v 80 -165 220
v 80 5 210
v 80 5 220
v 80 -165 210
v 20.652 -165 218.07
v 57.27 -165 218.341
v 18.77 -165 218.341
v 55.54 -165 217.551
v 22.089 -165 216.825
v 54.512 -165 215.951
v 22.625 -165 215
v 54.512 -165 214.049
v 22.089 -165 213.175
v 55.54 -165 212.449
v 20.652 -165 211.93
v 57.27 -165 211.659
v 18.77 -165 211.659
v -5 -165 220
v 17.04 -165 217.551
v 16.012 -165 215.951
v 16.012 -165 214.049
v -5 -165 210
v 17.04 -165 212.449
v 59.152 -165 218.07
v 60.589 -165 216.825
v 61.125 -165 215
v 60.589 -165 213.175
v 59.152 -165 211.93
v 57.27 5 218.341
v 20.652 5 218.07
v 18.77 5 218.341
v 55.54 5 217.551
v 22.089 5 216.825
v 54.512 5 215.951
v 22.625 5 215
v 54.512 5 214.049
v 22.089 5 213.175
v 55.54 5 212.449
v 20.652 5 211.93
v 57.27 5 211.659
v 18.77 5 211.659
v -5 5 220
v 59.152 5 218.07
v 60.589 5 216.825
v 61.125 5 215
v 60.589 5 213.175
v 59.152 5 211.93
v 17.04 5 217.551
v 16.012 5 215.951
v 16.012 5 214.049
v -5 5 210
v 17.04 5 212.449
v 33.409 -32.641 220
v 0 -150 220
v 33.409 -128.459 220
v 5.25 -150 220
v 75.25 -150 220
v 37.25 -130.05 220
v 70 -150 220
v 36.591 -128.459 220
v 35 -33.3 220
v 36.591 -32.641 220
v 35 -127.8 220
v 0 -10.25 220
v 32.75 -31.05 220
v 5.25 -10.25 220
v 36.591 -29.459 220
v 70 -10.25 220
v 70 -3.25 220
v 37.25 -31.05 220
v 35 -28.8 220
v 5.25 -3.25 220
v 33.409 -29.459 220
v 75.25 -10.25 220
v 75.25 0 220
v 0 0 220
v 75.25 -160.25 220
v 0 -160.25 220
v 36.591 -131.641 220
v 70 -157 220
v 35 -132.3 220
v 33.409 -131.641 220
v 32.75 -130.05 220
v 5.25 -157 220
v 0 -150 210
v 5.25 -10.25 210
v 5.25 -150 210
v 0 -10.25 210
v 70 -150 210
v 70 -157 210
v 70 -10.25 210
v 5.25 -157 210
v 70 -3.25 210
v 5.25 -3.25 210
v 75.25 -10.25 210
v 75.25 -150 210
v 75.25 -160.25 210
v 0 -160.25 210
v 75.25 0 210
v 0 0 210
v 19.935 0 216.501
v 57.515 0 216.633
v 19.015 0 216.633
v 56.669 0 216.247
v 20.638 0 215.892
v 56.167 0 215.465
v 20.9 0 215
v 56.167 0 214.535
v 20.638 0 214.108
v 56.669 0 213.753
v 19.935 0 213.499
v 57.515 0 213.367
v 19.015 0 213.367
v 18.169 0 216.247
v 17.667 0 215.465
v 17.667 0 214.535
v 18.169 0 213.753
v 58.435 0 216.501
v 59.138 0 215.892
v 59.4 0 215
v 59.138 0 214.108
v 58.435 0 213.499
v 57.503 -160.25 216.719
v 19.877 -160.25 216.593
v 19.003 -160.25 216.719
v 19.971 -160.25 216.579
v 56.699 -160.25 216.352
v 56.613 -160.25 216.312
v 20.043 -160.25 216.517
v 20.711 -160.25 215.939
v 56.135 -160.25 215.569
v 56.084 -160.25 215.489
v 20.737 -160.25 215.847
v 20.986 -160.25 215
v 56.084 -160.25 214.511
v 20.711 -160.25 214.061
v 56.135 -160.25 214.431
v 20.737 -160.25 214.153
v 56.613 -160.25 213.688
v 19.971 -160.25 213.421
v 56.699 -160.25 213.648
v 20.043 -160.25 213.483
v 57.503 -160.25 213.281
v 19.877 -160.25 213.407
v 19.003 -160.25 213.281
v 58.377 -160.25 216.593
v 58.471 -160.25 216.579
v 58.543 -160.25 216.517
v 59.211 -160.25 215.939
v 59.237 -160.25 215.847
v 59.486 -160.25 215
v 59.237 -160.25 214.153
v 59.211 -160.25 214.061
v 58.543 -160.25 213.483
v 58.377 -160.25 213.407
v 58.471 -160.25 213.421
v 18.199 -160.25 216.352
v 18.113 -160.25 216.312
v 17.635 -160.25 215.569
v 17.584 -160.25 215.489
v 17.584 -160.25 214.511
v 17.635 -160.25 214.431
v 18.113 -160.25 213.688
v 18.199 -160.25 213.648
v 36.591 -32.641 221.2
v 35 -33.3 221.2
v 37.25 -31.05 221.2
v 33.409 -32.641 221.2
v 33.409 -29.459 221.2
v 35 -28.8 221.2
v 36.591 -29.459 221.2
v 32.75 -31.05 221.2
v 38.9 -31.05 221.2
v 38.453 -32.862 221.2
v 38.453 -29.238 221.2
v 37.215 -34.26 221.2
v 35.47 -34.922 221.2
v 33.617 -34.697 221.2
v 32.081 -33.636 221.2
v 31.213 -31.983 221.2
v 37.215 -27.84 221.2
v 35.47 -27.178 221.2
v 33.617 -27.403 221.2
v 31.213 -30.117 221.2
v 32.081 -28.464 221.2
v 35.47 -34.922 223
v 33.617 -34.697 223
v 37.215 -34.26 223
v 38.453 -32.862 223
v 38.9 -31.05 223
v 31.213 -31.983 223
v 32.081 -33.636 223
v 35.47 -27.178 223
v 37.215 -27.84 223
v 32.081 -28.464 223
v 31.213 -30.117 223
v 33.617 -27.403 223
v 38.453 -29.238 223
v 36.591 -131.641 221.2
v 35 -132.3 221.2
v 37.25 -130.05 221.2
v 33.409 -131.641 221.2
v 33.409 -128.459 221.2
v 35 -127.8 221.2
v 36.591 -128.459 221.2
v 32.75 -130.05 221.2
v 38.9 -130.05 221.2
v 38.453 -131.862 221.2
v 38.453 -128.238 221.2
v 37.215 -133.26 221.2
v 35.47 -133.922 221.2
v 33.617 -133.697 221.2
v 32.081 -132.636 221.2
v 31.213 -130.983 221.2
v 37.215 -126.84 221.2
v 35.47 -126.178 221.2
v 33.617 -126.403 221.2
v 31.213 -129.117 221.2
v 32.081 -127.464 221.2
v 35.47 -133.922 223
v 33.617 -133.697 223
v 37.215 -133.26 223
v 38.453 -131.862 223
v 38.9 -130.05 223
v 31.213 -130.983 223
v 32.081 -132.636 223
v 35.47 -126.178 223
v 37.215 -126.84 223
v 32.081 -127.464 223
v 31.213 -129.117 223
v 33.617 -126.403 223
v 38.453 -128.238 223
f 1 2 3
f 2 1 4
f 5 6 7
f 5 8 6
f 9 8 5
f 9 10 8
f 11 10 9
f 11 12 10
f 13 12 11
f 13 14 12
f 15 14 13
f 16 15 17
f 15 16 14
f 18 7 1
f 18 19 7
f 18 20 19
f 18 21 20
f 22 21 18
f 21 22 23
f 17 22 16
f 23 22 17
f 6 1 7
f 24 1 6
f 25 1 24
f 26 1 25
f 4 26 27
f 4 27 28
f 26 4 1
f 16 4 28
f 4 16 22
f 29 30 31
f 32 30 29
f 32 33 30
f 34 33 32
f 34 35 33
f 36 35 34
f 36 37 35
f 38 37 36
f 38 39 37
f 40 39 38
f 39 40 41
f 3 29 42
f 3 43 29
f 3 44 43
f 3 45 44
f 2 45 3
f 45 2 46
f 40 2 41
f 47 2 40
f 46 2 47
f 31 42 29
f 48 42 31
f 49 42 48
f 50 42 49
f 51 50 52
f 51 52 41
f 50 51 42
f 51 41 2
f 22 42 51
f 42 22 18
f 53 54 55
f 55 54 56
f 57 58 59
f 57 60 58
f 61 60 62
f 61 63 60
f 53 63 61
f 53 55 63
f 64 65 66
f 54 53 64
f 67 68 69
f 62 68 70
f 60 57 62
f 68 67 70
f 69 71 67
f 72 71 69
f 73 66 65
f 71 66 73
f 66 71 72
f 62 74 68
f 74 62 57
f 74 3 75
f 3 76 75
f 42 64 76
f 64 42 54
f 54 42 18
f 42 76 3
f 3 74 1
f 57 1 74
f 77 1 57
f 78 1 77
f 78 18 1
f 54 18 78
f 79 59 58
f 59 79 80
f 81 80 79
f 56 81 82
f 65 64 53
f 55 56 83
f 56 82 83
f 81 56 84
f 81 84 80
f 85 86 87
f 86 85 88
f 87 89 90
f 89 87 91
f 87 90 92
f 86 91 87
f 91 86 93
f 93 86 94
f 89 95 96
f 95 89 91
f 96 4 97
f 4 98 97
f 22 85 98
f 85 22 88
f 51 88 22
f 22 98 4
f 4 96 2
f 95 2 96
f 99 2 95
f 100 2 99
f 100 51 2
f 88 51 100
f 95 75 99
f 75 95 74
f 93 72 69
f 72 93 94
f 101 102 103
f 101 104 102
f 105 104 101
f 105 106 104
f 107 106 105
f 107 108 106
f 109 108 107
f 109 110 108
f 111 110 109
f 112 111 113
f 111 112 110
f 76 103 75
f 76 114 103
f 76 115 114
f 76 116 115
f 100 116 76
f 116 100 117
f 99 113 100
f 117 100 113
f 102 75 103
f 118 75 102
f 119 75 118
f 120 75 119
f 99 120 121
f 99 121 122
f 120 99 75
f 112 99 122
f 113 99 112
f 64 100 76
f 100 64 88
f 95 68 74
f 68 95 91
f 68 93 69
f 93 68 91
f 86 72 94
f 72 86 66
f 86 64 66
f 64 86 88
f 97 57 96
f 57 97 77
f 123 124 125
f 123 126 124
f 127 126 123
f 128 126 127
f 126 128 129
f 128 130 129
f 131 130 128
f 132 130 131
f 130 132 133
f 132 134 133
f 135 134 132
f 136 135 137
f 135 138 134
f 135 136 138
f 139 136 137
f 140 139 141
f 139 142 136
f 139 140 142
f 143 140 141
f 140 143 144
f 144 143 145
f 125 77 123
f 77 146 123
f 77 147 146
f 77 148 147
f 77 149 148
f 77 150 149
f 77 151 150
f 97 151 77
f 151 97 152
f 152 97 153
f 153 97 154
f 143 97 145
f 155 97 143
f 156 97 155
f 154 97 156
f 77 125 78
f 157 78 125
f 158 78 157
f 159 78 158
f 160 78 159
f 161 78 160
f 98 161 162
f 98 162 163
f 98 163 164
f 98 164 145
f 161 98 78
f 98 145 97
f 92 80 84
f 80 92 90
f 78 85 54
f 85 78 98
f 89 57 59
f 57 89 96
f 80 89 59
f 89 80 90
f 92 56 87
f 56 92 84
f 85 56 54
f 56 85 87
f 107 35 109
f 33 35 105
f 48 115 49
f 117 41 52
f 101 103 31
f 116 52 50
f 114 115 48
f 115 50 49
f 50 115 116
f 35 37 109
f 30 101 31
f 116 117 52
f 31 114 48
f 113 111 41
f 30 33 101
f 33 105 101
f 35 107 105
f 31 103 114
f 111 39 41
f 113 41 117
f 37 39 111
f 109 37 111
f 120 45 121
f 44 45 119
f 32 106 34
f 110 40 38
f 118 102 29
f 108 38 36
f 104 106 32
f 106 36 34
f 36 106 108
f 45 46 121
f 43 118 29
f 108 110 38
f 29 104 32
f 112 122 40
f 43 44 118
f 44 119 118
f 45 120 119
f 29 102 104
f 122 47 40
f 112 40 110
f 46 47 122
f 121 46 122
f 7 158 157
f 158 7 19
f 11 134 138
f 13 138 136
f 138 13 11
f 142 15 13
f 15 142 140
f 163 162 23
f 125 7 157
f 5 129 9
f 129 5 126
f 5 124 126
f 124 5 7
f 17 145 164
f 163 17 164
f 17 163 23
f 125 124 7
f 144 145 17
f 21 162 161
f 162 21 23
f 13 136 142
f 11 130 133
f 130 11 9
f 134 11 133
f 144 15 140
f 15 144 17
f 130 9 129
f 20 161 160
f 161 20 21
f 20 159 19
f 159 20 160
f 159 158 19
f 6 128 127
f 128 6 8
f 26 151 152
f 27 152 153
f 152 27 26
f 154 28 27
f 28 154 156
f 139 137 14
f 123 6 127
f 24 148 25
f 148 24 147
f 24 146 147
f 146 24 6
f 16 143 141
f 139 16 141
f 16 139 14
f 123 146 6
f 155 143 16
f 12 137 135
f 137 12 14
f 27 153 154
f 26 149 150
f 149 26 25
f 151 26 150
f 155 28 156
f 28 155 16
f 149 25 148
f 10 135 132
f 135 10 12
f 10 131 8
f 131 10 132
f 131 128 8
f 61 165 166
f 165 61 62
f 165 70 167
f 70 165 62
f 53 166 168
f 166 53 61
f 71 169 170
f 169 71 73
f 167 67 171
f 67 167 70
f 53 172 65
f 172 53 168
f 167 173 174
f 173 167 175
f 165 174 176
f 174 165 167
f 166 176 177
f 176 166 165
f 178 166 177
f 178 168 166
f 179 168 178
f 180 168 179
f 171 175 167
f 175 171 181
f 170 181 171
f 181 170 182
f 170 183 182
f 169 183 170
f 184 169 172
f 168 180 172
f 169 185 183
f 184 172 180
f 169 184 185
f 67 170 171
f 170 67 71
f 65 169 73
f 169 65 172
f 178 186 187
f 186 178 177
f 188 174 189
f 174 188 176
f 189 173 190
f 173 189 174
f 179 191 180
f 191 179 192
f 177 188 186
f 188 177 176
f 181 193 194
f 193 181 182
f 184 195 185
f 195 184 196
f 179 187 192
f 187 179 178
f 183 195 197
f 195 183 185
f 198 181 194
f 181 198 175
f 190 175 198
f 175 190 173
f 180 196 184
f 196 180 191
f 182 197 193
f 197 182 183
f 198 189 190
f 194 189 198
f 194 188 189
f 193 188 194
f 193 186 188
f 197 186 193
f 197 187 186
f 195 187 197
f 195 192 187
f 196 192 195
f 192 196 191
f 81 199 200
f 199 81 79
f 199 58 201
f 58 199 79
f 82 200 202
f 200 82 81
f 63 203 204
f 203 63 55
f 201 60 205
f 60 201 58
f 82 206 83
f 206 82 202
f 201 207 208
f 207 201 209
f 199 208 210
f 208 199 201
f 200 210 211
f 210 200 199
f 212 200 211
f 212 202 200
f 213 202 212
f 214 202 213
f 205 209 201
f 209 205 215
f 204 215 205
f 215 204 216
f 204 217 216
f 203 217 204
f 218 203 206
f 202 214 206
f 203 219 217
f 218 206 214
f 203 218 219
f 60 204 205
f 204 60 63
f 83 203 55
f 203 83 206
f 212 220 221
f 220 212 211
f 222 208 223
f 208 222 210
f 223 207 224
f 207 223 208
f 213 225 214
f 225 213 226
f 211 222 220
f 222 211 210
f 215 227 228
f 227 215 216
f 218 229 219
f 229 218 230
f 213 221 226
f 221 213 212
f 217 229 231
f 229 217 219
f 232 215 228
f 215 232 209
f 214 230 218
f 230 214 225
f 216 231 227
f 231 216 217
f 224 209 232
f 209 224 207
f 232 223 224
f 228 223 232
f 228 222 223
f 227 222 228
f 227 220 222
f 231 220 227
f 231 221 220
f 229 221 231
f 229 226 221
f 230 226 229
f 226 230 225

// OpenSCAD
//
// Base

base_thickness = 10;
base_length = 170;

rotate([90,0,0]){
    difference(){
        // Base 
        translate([-5,210,-5]){
            cube([85,base_thickness,base_length]);
        }

        // Bottom Rails
        translate([0,210,0]){
            cube([75.25,base_thickness,3.25]);
        }
        translate([70,210,0]){
            cube([5.25,base_thickness,10.25]);
        }
        translate([0,210,0]){
            cube([5.25,base_thickness,10.25]);
        }

        // Top Rails
        translate([0,210,157]){
            cube([75.25,base_thickness,3.25]);
        }
        translate([70,210,150]){
            cube([5.25,base_thickness,10.25]);
        }
        translate([0,210,150]){
            cube([5.25,base_thickness,10.25]);
        }

        // Left Stabalizer screw hold
        translate([19.25,215,0]){
            rotate([180,0,0]){
                cylinder(5, 1.65, 3.375);
            }
        }

        // Left Stabalizer screw hold
        translate([57.75,215,0]){
            rotate([180,0,0]){
                cylinder(5, 1.65, 3.375);
            }
        }

        // Right Stabalizer screw hold
        translate([19.25,215, 165]){
            rotate([180,0,0]){
                cylinder(5, 3.375, 1.65);
            }
        }

        // Right Stabalizer screw hold
        translate([57.75,215,165]){
            rotate([180,0,0]){
                cylinder(5, 3.375, 1.65);
            }
        }
    }

// Ethernet switch (Trendnet) Mount Pegs
hold_x = 35;
hold_y = base_thickness + 213;
hold_z = 10.25+20.8;
hold_offset = 99;

// Switch holds
translate([hold_x, hold_y-1.8, hold_z]){
    rotate([90,0,0]){
        cylinder(1.8, 2.25, 2.25);
    }
}
translate([hold_x,hold_y,hold_z]){
    rotate([90,0,0]){
        cylinder(1.8, 3.9, 3.9);
    }
}


// Switch holds
translate([hold_x, hold_y-1.8, hold_z+hold_offset]){
    rotate([90,0,0]){
        cylinder(1.8, 2.25, 2.25);
    }
}
translate([hold_x,hold_y,hold_z+hold_offset]){
    rotate([90,0,0]){
        cylinder(1.8, 3.9, 3.9);
    }
}
}
